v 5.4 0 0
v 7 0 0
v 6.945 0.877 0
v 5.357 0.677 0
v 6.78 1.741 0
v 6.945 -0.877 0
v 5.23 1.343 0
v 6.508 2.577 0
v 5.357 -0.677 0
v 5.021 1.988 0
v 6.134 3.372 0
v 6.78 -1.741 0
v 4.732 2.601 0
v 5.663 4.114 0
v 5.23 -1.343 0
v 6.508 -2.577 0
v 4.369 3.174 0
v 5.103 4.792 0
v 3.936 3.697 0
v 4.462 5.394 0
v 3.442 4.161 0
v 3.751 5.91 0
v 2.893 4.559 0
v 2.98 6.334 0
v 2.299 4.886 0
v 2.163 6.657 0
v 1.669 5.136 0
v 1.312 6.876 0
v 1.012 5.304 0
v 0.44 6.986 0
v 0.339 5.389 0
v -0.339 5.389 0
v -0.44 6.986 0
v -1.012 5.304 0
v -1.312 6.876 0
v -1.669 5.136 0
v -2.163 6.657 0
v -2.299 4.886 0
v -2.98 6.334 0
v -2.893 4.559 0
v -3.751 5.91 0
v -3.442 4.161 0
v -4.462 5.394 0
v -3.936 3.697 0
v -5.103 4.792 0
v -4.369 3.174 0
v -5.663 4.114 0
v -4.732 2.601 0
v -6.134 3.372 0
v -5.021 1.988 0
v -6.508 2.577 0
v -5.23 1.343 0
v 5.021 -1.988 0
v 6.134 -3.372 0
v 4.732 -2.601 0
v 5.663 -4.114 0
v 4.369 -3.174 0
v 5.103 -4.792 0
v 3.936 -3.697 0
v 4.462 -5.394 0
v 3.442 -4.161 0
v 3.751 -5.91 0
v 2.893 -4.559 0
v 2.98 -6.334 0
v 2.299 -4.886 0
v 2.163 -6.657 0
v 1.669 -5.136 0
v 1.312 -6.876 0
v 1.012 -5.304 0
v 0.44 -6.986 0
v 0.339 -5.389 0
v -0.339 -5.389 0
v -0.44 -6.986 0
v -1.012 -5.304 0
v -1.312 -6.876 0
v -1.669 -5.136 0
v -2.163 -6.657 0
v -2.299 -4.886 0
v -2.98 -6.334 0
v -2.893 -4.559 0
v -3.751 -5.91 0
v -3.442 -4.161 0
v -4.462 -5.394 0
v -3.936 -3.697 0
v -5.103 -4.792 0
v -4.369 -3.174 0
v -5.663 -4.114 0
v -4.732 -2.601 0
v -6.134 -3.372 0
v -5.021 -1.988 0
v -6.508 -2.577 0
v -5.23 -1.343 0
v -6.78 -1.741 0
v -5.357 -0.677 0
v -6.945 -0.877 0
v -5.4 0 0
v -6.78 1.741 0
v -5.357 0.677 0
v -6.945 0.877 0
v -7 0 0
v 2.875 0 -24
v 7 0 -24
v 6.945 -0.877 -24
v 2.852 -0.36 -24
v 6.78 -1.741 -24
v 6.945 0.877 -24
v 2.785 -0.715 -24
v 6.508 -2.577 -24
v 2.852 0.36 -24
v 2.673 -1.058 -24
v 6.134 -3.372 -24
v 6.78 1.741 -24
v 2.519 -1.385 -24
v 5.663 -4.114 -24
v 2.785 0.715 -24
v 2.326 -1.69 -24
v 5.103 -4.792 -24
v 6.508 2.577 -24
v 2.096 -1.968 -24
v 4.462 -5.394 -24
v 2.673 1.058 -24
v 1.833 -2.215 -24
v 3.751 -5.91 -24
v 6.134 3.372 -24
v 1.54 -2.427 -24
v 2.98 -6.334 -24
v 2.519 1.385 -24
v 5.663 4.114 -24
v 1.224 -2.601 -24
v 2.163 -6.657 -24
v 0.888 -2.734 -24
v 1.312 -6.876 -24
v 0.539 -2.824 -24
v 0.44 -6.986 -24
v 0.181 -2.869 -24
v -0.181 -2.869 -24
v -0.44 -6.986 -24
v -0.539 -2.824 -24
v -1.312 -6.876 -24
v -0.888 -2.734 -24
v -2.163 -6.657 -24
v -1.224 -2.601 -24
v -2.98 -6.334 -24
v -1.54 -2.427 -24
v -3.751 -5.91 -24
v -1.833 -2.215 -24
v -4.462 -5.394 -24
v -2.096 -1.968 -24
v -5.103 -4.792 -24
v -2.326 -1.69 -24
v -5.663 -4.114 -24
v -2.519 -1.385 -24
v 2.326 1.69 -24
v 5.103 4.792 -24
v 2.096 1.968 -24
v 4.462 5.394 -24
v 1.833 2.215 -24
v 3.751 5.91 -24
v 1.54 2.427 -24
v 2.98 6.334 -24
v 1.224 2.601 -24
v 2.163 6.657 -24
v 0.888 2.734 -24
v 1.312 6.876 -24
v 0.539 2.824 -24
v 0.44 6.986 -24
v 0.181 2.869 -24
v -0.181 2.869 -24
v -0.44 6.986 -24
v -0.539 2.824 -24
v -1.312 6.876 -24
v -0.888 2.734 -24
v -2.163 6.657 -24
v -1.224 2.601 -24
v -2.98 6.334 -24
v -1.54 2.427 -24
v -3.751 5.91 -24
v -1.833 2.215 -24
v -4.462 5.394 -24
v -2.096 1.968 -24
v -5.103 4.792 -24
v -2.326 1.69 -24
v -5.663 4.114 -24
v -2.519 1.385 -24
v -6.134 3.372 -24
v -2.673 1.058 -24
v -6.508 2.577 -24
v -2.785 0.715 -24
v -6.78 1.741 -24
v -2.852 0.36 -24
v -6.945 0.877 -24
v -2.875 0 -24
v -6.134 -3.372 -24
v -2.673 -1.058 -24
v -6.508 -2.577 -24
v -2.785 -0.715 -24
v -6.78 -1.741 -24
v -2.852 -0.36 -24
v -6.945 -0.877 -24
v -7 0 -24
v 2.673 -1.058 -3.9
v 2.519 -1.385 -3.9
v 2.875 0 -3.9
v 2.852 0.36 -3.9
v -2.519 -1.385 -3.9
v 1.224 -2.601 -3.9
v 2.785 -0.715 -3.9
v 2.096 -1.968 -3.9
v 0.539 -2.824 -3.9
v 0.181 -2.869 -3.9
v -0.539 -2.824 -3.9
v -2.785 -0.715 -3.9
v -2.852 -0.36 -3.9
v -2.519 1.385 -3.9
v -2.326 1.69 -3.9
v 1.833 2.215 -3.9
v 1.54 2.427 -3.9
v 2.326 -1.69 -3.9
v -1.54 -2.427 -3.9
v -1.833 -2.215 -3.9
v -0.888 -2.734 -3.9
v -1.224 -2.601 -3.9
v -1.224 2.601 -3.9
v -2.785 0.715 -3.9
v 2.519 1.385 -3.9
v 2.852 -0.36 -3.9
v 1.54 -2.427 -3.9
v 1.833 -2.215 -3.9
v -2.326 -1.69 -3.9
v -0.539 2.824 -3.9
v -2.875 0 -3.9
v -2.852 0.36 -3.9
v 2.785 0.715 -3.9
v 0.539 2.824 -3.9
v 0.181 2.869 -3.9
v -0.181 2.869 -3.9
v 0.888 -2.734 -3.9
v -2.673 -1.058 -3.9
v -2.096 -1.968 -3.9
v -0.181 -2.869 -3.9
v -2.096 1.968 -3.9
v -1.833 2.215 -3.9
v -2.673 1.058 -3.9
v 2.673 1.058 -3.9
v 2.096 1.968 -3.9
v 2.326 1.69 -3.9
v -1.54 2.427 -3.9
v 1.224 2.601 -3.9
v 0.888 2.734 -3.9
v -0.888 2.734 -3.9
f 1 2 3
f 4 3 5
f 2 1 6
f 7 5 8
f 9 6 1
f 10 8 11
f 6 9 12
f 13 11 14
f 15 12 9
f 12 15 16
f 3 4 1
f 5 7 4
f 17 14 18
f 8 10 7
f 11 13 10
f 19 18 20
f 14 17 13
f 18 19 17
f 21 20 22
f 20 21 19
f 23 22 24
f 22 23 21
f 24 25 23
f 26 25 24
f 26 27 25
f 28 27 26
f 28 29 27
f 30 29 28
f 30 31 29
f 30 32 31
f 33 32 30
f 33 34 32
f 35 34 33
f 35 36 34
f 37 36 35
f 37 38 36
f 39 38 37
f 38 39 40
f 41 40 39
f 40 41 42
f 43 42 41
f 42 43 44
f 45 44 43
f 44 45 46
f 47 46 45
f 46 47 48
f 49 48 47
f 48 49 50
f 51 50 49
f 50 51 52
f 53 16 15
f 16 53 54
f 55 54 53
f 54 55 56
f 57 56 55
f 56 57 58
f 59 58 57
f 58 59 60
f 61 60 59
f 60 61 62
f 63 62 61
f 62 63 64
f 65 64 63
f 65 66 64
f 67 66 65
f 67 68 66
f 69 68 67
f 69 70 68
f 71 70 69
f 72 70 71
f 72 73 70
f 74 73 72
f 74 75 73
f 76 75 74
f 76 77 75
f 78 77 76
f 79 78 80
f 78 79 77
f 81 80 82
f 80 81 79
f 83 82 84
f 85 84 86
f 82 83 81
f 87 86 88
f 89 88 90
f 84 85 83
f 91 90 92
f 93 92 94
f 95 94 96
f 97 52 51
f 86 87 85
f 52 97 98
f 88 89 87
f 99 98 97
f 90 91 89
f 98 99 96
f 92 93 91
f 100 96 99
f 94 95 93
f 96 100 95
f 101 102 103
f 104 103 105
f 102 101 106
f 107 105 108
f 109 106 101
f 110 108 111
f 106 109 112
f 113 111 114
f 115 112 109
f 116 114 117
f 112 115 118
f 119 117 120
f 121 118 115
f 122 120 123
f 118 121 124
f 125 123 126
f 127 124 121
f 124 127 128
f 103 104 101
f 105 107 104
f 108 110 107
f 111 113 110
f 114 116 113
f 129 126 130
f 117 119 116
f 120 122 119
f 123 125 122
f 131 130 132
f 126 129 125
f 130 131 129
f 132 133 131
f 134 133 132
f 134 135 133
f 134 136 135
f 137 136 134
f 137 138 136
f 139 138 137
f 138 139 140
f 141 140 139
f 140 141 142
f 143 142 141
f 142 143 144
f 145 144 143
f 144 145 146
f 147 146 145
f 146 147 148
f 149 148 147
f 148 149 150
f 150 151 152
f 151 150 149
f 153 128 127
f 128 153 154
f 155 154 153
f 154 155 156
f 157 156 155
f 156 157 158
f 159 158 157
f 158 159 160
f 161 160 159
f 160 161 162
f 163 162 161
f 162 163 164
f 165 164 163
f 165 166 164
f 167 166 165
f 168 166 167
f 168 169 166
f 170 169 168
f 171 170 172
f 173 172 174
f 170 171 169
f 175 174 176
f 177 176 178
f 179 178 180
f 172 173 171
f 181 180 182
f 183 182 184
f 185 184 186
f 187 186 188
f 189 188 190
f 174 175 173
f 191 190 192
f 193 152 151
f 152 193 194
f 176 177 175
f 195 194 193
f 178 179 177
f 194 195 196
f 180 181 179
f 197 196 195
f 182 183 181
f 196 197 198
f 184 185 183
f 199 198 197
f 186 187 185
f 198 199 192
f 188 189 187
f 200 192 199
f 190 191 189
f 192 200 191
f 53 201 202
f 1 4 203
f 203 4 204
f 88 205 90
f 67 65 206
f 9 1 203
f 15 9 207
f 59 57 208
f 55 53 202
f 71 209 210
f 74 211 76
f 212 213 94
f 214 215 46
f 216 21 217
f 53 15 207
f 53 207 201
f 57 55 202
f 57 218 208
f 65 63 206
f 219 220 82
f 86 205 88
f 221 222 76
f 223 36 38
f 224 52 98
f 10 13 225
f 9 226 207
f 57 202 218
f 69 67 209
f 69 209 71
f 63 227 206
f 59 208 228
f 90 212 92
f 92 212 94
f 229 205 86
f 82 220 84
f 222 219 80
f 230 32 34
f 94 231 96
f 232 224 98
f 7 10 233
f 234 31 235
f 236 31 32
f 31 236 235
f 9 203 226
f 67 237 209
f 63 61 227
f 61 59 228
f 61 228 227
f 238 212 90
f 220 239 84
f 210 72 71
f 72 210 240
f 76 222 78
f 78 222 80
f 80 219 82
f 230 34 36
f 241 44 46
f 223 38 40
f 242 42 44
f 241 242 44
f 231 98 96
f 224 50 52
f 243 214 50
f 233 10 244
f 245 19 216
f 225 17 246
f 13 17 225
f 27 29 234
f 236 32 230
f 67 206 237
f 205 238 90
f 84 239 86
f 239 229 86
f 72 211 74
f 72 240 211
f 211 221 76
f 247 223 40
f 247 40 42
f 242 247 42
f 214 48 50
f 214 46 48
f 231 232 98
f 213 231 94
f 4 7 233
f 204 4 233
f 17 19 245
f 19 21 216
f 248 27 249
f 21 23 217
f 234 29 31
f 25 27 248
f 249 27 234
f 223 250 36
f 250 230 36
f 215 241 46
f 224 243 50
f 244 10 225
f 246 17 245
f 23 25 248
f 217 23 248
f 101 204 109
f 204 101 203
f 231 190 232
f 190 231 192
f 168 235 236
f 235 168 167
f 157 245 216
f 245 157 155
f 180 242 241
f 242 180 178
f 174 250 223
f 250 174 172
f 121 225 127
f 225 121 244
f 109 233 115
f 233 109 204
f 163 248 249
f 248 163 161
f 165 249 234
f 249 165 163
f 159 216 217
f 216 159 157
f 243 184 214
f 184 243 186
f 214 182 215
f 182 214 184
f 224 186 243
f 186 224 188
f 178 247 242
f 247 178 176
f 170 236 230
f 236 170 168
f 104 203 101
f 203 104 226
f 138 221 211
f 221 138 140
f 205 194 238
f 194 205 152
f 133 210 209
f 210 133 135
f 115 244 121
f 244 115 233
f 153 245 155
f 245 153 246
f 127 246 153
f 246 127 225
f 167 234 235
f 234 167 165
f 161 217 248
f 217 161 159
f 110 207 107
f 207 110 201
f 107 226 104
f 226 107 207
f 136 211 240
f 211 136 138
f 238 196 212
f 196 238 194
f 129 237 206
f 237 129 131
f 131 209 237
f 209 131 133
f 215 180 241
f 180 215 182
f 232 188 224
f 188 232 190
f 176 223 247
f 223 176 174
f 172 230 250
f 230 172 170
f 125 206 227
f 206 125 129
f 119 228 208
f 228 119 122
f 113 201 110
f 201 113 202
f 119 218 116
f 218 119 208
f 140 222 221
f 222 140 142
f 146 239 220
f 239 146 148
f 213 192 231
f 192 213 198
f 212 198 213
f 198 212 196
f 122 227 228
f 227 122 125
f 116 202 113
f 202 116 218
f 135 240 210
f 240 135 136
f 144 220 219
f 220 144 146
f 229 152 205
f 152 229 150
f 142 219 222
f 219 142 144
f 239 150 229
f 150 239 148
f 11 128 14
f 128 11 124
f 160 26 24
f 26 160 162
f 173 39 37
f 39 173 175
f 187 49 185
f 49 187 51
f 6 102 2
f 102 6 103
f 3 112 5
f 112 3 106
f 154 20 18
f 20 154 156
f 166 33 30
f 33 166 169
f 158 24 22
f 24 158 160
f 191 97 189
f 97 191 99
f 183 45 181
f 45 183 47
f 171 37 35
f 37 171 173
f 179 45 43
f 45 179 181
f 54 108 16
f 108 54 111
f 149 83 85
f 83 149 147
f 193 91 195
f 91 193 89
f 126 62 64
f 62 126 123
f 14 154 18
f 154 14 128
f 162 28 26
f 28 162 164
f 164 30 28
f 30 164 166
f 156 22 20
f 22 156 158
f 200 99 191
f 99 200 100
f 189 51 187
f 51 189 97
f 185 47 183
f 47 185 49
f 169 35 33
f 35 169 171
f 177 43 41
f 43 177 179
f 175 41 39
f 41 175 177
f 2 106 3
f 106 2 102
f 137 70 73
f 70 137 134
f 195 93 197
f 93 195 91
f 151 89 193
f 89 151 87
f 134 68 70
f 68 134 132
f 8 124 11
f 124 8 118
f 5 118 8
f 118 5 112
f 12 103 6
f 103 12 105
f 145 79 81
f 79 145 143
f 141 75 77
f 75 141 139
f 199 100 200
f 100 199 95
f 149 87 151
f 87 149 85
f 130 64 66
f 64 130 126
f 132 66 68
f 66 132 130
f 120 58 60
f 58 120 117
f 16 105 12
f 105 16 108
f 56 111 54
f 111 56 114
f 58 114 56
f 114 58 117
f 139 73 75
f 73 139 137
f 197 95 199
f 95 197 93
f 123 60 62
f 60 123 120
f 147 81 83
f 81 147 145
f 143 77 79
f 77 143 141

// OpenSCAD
$fn = 50;


difference() {
	union() {
		translate(v = [0, 0, -24.0000000000]) {
			cylinder(h = 24, r = 7.0000000000);
		}
		cylinder(h = 0, r = 16.0000000000);
	}
	union() {
		translate(v = [0, 0, 0]) {
			rotate(a = [0, 0, 0]) {
				difference() {
					union() {
						#translate(v = [0, 0, -24.0000000000]) {
							cylinder(h = 24, r = 2.6000000000);
						}
						#translate(v = [0, 0, -3.9000000000]) {
							cylinder(h = 3.9000000000, r1 = 2.8750000000, r2 = 5.4000000000);
						}
						#translate(v = [0, 0, -24.0000000000]) {
							cylinder(h = 24, r = 2.8750000000);
						}
						#translate(v = [0, 0, -24.0000000000]) {
							cylinder(h = 24, r = 2.6000000000);
						}
					}
					union();
				}
			}
		}
	}
}
